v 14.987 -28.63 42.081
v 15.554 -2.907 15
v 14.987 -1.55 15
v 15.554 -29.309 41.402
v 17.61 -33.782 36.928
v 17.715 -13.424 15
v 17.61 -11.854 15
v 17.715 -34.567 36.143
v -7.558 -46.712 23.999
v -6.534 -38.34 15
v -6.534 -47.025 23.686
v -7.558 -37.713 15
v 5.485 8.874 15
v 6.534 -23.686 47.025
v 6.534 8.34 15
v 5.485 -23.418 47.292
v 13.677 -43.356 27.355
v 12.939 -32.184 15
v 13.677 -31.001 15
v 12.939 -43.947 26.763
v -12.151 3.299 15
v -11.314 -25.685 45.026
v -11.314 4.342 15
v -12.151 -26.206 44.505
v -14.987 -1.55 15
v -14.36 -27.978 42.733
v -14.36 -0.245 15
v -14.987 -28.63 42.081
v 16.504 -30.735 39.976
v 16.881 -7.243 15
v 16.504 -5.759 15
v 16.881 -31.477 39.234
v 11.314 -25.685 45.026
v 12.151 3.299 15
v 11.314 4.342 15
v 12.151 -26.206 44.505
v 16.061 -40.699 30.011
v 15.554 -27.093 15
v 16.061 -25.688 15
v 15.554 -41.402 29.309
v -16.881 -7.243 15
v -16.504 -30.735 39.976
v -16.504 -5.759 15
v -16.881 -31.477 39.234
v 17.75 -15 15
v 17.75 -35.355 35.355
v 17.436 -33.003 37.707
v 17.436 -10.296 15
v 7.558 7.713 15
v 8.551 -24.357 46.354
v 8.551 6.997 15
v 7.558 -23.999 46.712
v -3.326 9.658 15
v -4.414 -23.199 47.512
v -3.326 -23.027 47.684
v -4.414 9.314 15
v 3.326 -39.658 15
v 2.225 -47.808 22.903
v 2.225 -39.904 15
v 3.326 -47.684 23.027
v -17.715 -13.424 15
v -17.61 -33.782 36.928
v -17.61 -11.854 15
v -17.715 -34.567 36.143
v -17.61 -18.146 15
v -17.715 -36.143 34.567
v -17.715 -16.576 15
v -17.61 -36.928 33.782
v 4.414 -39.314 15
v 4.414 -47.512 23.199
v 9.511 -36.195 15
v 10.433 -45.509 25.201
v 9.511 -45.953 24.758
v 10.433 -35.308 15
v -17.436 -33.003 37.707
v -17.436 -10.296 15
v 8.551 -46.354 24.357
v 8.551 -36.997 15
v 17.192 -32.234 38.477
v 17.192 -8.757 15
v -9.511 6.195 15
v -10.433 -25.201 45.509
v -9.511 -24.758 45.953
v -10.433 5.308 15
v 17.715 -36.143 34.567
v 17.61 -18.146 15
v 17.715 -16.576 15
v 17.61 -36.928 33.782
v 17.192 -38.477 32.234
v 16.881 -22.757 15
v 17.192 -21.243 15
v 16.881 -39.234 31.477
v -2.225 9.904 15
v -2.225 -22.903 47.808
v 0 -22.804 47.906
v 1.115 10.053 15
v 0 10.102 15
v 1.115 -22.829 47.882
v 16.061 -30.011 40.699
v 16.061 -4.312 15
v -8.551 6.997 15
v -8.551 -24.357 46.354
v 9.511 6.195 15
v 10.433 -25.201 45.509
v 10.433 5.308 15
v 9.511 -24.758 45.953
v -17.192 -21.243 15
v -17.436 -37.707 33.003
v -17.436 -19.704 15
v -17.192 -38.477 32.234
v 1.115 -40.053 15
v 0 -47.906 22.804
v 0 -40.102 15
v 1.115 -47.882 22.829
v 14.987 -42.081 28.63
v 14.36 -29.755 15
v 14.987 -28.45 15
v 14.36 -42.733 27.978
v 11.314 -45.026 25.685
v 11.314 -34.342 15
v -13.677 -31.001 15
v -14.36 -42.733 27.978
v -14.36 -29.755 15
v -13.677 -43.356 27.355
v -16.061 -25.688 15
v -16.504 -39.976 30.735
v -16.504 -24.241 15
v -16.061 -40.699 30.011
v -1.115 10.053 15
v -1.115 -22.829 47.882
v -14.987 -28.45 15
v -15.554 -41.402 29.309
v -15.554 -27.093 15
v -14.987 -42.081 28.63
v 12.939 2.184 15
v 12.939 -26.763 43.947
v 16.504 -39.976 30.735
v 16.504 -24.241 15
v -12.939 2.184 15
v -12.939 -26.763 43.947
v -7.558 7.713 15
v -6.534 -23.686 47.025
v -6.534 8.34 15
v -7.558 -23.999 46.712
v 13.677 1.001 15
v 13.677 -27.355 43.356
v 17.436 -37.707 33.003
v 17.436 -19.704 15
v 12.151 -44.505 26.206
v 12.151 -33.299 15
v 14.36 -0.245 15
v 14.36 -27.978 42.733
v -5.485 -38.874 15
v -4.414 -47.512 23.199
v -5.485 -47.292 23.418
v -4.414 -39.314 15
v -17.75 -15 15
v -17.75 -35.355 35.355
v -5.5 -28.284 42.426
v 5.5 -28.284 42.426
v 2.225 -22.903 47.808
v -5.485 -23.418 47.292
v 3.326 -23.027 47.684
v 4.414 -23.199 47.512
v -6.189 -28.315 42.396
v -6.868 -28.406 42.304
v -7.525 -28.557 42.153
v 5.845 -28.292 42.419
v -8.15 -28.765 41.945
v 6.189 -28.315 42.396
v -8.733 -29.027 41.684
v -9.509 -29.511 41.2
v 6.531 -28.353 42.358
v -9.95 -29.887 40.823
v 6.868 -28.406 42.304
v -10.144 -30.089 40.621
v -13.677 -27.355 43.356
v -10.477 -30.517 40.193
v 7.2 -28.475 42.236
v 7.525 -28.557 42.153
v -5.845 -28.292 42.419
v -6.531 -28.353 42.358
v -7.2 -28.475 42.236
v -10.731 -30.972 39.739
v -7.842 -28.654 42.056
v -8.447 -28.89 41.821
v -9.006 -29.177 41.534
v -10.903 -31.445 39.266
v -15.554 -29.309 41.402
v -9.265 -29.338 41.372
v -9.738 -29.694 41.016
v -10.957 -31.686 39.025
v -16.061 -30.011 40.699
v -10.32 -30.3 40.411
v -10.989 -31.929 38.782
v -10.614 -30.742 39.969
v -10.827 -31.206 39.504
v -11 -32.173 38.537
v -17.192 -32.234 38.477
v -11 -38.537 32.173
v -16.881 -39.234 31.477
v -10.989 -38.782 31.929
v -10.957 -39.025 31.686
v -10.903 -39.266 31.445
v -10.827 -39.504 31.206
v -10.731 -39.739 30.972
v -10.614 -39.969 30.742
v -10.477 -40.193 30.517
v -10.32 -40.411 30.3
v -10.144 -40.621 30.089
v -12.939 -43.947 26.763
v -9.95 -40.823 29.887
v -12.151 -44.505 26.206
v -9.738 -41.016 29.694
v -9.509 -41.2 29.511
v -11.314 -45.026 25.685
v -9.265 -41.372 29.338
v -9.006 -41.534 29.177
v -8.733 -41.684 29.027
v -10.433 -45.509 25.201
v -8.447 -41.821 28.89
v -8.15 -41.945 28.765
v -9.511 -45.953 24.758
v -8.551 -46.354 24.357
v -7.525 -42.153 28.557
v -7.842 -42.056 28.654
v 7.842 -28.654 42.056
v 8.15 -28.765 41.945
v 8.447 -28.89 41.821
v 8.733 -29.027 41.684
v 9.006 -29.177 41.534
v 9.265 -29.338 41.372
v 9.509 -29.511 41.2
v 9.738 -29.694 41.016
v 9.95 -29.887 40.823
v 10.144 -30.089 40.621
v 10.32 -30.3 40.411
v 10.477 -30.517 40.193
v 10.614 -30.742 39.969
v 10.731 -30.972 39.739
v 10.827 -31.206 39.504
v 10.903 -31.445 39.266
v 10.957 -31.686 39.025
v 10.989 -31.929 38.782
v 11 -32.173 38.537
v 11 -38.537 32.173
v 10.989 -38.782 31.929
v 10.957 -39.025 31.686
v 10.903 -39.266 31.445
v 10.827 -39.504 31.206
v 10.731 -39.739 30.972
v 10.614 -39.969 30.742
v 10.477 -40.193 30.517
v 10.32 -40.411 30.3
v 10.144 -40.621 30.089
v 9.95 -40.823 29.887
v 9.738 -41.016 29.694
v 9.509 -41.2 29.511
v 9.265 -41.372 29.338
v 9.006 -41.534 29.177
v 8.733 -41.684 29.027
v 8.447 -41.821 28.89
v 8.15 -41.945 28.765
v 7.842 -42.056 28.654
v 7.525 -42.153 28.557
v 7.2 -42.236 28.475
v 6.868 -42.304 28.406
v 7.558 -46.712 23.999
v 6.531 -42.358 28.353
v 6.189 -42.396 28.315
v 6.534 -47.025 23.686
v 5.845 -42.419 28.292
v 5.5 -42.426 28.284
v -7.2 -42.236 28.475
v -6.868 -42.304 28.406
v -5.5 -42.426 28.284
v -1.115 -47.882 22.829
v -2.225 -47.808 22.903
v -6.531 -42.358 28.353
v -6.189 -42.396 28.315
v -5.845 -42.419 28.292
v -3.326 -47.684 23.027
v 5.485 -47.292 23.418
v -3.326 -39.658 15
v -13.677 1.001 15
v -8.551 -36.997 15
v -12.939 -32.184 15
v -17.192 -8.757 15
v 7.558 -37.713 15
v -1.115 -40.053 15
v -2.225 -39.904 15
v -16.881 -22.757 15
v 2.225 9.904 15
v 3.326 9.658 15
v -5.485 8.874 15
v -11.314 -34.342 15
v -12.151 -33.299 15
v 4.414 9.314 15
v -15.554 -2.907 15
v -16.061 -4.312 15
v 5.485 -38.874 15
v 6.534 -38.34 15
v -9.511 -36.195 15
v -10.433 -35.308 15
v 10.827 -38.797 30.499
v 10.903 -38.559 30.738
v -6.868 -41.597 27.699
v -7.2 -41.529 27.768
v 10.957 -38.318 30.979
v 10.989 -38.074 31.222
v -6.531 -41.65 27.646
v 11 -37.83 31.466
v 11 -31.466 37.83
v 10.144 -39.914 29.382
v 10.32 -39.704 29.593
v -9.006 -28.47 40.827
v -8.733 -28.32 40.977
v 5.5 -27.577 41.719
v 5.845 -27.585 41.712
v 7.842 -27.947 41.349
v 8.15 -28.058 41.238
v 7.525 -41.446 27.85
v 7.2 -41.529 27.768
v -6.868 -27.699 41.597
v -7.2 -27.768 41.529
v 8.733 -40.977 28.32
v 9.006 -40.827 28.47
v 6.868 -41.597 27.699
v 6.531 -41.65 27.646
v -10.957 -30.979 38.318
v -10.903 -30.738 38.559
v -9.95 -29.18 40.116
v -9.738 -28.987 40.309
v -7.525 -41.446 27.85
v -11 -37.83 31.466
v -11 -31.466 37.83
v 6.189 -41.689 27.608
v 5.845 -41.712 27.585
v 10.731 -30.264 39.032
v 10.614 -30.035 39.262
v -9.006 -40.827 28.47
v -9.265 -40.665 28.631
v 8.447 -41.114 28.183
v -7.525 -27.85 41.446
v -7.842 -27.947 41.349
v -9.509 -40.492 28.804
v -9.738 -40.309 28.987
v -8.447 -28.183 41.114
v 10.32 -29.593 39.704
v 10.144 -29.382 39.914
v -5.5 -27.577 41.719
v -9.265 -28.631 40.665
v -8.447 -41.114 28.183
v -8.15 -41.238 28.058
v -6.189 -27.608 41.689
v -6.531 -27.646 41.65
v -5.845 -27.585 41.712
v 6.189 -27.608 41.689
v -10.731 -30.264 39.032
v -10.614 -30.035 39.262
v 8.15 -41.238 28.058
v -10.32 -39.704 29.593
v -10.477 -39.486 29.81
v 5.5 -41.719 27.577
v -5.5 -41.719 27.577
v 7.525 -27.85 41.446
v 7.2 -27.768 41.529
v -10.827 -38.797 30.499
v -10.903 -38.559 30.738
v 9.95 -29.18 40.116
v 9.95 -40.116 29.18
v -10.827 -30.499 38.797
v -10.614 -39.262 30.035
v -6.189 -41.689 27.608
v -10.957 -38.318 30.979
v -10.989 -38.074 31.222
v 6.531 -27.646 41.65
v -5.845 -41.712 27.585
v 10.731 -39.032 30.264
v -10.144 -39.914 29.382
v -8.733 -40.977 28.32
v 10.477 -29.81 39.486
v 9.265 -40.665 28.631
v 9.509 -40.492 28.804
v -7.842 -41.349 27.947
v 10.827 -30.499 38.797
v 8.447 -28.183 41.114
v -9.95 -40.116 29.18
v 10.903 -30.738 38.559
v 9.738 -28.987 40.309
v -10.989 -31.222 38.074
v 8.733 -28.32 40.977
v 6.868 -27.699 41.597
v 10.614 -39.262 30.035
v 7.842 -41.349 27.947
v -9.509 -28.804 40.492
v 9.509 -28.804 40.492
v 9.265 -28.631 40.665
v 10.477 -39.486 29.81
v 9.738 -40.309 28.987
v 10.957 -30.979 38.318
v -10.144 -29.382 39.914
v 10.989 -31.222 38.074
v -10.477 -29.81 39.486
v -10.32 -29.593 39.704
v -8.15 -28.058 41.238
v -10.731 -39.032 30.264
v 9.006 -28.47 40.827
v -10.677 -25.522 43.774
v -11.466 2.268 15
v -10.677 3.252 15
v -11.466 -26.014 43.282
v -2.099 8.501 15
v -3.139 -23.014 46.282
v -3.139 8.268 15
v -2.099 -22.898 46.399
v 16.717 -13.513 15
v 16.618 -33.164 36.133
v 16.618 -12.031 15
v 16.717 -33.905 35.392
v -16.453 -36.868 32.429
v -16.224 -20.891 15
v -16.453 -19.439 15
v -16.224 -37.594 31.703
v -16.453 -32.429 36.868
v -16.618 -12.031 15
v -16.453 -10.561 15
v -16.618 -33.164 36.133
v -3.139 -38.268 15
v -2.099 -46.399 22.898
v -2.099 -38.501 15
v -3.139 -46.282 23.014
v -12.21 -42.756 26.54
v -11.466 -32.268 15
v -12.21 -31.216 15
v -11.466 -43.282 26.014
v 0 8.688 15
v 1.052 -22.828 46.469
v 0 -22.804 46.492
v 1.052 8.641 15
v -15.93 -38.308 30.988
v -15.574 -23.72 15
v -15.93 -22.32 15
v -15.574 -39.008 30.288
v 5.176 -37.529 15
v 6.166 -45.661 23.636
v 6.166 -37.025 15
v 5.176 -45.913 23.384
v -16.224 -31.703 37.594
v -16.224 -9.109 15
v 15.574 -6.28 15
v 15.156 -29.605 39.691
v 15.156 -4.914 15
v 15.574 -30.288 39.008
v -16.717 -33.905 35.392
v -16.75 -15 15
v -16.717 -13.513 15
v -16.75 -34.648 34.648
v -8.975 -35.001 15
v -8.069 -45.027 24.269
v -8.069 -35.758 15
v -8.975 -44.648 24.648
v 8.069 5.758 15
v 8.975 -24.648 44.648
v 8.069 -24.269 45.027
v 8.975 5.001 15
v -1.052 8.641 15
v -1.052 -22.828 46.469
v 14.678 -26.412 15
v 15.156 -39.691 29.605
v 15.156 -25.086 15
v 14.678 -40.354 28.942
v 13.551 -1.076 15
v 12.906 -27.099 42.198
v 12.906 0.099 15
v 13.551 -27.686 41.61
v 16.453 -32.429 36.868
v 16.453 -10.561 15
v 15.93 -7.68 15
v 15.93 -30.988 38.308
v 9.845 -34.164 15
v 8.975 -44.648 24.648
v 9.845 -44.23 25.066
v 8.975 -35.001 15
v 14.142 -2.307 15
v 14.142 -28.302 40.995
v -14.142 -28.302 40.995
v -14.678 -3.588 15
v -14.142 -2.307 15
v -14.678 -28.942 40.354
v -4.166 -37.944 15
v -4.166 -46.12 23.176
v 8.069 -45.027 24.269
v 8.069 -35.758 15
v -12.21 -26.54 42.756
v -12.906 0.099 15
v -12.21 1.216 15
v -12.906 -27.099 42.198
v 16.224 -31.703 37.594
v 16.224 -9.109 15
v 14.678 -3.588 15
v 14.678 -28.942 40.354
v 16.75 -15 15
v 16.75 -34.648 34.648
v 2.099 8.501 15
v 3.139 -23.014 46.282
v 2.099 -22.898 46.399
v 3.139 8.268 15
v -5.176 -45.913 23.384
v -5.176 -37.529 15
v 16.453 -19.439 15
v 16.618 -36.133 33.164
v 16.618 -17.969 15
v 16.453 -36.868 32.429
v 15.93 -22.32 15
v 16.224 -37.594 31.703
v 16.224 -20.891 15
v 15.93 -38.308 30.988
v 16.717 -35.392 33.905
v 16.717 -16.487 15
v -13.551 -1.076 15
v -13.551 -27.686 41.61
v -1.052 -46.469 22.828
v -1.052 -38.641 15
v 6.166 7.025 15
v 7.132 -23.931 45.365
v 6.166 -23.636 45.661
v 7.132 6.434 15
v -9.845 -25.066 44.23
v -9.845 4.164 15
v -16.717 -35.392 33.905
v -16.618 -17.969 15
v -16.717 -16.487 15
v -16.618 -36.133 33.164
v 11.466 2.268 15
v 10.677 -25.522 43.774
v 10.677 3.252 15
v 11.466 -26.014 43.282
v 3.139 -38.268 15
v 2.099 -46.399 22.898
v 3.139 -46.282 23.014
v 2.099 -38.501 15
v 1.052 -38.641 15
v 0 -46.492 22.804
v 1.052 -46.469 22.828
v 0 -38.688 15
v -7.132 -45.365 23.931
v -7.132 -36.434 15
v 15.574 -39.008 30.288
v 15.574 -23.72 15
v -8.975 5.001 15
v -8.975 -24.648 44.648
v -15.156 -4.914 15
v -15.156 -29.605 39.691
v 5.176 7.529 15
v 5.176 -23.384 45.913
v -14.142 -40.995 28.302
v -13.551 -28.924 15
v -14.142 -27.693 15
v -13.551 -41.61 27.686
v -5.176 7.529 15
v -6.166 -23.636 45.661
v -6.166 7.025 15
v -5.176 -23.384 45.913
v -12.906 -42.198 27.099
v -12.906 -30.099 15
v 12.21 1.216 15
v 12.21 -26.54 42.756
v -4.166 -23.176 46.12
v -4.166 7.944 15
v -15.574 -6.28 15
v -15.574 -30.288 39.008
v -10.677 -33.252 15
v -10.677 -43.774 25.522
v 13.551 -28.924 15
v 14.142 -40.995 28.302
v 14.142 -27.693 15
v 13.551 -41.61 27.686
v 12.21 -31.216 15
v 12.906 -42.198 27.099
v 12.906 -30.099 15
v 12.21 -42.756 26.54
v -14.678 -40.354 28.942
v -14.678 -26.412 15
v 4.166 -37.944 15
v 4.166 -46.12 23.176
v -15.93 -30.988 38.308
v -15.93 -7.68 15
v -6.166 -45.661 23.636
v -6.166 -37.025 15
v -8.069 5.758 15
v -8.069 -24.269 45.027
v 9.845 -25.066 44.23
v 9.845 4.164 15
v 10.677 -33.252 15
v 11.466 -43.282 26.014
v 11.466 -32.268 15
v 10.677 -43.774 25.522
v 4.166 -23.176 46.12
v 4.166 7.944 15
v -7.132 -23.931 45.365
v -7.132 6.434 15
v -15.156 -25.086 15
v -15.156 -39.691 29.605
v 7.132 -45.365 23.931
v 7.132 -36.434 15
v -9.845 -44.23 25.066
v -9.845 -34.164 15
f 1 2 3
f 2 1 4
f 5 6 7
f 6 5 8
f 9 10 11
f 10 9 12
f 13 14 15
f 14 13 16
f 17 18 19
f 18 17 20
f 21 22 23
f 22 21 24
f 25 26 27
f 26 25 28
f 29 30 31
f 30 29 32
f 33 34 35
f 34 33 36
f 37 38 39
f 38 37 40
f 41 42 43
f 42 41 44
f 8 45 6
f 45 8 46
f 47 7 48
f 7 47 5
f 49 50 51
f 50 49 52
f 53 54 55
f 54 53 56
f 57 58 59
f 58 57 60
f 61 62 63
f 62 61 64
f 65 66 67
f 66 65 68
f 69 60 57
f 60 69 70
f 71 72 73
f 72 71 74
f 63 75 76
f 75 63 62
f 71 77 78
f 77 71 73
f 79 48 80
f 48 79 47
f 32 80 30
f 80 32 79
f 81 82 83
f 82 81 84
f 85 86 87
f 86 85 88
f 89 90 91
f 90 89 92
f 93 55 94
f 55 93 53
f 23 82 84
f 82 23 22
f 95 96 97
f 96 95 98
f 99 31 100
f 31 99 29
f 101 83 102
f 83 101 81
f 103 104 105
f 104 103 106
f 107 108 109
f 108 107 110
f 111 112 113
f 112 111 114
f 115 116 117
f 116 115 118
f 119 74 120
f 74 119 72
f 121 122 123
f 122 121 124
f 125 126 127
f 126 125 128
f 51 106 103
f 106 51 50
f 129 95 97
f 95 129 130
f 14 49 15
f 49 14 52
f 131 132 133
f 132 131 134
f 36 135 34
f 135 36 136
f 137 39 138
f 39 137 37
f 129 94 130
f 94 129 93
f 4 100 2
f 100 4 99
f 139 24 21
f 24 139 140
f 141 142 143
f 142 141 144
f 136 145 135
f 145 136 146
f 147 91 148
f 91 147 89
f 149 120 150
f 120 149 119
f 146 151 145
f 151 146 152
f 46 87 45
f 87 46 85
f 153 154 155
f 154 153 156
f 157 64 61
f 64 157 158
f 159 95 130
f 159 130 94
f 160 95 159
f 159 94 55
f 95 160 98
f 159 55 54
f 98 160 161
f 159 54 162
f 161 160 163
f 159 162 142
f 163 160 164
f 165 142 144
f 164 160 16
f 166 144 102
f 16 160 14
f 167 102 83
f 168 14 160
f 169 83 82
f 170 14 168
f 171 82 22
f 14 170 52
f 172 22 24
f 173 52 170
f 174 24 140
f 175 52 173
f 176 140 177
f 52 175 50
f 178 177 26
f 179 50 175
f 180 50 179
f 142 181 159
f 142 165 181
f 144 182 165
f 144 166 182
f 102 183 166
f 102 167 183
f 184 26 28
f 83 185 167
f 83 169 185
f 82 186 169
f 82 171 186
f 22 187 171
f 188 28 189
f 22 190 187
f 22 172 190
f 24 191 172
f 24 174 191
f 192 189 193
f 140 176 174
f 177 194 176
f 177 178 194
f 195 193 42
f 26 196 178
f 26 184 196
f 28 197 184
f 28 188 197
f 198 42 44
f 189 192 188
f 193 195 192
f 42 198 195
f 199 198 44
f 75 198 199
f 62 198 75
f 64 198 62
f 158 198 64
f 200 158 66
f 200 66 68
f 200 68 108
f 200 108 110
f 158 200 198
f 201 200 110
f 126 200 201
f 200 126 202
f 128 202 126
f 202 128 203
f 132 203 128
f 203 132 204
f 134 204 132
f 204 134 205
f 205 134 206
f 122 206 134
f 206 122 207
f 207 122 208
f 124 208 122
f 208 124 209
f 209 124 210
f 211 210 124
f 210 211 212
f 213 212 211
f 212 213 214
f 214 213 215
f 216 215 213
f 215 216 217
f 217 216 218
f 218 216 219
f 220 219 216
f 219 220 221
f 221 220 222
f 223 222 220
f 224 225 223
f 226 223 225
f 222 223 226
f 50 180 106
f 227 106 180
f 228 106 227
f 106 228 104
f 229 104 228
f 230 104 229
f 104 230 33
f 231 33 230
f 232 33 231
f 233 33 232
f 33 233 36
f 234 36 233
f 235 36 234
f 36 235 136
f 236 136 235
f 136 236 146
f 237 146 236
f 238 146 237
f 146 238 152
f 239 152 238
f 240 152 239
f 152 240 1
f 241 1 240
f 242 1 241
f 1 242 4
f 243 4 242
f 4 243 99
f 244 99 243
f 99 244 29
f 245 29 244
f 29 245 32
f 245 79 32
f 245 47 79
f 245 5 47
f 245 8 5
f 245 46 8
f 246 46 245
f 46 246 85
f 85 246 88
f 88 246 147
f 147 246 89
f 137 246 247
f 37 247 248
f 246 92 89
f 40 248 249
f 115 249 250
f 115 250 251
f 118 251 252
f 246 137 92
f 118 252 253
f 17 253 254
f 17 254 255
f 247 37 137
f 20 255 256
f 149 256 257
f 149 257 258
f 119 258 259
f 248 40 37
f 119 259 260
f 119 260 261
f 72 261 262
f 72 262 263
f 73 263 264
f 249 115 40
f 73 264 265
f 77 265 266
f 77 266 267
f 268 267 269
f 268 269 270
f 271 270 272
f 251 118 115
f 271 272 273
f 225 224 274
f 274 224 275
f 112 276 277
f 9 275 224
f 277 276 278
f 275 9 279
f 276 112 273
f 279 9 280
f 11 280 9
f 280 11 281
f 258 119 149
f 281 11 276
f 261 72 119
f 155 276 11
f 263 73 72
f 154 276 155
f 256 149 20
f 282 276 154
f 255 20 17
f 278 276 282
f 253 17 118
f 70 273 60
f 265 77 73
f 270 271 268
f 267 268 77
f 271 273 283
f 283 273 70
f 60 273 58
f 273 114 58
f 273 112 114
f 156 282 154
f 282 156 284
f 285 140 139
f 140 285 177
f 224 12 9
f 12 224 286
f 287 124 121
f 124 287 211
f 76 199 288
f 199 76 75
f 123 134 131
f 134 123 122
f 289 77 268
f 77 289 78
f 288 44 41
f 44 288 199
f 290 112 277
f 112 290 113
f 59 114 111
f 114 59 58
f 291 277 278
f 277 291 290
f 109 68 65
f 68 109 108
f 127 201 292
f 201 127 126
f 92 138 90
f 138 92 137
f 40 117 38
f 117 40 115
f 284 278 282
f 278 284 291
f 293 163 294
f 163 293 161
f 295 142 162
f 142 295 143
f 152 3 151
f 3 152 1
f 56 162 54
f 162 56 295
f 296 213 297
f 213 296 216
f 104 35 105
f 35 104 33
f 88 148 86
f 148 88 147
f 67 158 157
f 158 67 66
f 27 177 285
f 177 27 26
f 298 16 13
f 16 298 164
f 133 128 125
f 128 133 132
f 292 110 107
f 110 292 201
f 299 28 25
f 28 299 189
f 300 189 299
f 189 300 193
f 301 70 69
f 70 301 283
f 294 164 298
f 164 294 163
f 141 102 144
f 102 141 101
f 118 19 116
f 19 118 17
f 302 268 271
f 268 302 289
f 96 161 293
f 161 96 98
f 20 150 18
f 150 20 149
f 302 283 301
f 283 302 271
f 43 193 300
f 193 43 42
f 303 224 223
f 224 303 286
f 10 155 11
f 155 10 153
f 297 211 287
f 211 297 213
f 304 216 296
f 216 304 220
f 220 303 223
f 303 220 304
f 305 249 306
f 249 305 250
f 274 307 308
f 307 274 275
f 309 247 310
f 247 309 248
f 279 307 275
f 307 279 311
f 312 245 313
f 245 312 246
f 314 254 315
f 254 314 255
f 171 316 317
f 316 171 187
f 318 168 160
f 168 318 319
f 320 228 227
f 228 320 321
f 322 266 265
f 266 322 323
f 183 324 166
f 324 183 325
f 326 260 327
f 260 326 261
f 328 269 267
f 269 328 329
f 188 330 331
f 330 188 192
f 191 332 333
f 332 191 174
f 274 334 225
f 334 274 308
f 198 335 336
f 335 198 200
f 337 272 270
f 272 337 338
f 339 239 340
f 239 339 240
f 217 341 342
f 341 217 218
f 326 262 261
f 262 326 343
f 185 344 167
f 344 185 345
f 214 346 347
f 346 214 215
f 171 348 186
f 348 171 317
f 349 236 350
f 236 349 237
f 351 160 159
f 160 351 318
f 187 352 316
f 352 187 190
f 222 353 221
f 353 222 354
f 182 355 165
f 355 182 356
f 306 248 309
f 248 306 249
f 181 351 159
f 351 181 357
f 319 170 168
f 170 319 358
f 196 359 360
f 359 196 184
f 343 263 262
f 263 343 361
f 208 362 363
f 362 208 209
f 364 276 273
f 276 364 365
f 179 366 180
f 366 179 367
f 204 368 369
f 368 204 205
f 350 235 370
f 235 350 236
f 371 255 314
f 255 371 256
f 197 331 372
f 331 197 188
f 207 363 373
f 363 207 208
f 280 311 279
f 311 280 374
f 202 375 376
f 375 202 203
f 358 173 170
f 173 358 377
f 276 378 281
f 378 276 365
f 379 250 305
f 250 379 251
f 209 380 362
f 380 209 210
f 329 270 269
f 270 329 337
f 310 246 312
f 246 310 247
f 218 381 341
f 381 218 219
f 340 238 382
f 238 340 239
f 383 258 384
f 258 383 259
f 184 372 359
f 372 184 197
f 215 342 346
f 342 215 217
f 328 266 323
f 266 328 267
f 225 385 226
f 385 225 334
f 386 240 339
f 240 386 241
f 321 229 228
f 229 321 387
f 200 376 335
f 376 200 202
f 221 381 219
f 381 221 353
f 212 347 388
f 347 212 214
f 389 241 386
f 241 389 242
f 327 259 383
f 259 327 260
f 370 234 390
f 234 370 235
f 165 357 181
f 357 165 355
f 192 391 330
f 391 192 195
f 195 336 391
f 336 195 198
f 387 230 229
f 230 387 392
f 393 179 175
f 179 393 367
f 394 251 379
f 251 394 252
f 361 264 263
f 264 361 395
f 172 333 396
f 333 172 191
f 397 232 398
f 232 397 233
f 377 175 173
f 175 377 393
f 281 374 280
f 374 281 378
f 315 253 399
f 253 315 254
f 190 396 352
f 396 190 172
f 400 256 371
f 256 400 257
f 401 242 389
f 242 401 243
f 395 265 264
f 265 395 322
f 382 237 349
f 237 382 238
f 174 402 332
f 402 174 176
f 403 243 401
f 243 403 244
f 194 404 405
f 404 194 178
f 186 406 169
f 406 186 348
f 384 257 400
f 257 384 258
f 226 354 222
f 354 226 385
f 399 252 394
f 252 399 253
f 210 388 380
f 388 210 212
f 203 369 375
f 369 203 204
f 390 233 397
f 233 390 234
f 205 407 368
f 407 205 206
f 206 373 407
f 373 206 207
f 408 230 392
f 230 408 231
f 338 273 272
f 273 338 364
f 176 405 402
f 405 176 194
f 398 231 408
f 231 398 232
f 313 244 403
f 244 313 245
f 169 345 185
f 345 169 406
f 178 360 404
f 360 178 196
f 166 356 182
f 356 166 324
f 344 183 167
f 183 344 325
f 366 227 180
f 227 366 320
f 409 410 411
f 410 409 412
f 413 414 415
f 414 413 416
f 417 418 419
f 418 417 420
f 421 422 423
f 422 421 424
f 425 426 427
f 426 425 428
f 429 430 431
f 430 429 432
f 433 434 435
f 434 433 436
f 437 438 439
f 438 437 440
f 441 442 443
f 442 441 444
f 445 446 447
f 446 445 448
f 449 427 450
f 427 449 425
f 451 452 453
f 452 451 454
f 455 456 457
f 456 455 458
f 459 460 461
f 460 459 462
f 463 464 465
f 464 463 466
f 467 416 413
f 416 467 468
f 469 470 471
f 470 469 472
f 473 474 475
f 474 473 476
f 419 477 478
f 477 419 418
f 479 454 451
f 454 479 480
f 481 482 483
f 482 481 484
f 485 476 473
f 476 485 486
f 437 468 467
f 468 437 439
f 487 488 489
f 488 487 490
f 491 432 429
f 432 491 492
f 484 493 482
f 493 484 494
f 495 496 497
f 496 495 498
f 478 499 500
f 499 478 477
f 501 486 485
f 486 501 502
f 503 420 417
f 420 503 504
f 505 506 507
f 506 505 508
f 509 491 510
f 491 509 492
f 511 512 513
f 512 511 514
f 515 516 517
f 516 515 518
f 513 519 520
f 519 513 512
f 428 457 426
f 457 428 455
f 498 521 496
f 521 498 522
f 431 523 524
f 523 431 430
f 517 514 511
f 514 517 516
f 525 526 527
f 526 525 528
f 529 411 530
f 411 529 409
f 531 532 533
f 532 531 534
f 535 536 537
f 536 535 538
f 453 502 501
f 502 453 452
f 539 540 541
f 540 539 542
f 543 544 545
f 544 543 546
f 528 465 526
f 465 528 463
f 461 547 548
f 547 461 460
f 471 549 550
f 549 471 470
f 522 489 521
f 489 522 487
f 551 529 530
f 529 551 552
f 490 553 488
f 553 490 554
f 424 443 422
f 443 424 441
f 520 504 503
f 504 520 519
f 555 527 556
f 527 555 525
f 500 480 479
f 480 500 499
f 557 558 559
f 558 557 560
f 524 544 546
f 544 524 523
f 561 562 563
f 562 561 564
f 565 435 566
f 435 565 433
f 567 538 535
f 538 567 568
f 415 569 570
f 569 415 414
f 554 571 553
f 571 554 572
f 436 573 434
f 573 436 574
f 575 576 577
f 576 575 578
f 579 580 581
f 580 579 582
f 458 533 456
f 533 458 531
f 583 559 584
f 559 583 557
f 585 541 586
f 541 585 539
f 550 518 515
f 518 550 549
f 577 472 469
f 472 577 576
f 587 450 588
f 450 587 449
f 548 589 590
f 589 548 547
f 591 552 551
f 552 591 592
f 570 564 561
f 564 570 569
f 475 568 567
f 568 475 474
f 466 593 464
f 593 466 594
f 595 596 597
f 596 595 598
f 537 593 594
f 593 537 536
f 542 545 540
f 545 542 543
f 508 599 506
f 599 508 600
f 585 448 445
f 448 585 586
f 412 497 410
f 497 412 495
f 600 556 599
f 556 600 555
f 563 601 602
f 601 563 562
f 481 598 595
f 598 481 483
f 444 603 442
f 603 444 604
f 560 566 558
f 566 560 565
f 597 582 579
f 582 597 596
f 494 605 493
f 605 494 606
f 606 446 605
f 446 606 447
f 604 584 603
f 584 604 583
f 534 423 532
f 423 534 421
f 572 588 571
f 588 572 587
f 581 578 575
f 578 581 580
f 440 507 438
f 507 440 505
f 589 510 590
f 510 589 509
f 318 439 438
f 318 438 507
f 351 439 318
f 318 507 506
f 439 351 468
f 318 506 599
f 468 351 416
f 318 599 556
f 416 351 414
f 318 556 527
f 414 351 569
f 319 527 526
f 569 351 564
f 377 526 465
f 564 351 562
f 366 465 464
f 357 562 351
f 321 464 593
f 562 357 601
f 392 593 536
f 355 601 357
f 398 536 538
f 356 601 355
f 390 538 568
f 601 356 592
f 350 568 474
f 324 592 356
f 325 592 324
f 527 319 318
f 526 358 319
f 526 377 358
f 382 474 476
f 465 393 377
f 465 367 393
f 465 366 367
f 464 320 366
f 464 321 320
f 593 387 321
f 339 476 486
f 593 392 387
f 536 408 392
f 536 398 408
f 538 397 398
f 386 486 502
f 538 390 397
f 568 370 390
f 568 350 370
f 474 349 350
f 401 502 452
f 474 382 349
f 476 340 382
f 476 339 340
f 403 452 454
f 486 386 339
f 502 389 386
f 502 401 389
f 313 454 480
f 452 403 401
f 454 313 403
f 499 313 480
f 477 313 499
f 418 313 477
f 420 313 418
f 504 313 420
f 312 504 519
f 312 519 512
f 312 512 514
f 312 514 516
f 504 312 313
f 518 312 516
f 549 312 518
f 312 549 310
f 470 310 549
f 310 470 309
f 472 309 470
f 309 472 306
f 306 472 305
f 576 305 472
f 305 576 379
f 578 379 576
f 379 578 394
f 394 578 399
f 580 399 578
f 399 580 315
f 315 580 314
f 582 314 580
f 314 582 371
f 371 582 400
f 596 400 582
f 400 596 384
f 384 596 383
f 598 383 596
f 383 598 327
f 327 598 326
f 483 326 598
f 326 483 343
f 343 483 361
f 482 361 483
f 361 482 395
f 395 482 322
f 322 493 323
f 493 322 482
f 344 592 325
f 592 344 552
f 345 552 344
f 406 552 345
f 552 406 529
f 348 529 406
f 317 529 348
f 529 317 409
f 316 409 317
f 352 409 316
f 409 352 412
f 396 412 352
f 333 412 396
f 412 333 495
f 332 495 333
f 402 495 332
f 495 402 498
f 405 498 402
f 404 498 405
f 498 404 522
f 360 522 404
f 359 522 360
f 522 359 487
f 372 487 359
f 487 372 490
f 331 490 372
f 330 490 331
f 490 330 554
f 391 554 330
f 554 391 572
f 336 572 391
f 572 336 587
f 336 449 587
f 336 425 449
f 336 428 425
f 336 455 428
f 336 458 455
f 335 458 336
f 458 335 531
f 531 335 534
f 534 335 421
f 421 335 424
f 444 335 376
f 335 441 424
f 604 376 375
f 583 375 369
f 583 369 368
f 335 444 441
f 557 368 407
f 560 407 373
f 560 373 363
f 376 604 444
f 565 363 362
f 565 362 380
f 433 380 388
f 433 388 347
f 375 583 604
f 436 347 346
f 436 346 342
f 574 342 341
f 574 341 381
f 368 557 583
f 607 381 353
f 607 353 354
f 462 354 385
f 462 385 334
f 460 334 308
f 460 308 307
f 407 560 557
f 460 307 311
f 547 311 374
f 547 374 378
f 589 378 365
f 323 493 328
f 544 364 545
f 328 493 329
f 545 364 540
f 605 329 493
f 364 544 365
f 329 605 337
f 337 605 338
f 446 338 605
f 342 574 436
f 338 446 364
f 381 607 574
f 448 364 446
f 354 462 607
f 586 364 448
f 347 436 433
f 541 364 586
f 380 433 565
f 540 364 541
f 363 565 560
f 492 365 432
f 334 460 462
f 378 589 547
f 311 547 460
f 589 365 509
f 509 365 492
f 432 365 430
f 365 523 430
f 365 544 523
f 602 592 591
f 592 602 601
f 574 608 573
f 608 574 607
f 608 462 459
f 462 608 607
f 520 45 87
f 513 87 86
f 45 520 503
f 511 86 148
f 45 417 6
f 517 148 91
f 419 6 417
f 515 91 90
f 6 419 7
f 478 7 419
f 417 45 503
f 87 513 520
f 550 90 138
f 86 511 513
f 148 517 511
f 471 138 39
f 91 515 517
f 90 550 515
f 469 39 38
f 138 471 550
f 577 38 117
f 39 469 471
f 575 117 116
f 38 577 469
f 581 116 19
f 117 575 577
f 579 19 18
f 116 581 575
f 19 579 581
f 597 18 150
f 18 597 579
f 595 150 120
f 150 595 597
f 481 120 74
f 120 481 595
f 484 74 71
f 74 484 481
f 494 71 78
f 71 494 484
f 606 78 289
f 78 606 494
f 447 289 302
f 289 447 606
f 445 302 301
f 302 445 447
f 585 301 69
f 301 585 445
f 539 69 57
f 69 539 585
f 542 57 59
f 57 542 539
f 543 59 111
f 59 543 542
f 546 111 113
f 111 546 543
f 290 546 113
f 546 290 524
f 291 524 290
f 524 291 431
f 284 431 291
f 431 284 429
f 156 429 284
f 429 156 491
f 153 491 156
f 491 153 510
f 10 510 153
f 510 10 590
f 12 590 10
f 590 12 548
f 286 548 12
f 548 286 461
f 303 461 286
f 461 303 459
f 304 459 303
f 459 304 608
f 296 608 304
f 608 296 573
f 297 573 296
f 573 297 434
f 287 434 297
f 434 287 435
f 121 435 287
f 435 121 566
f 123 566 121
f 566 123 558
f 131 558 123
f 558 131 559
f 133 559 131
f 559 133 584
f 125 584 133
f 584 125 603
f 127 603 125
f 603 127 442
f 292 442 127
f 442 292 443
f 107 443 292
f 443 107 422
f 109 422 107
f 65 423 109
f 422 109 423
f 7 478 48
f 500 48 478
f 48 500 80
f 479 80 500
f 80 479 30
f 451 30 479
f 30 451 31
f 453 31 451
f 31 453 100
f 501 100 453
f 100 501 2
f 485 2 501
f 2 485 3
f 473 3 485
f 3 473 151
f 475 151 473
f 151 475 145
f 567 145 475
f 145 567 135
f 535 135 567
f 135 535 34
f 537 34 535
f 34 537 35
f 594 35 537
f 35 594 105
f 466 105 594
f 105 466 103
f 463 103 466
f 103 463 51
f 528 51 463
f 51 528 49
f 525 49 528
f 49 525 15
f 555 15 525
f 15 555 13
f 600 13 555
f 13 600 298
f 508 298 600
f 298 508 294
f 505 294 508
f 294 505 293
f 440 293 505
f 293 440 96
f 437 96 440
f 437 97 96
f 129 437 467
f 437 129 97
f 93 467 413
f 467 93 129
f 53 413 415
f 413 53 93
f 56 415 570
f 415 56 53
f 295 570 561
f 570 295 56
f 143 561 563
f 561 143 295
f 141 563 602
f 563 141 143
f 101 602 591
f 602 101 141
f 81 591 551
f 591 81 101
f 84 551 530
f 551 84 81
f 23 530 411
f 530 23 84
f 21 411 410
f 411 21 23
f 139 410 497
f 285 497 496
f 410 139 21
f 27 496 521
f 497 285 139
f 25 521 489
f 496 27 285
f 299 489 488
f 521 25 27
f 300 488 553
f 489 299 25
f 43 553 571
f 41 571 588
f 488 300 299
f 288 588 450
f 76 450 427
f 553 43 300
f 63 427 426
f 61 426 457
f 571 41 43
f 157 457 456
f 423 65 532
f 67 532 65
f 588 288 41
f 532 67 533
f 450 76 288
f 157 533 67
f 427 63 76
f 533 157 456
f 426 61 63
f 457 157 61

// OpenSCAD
//
// ktCLOCK2
//
 
gap1 = 0.001;
gap2 = 0.002;
th = 2;




R1 = 33+0.5;
RR = 11;




difference()
{
    rotate([45, 0, 0]) union()
    {
        cover();
        //base();
    }
    translate([-100/2, -100/2, -100+15]) cube([100, 100, 100]);
}





module cover()
{
difference()
{
    union()
    {
        translate([0, 0, 0]) cylinder(r=(R1+2)/2, h=50, $fn=100);
    }
    
    translate([-(22-RR)/2, -(20-RR)/2, 0+gap1])
    minkowski()
    {
        cube([22-RR, 20-RR, 50-1]);
        cylinder(r=RR/2, h=1, $fn=100);
    }
        
        
    //translate([-22/2, -14/2, 0+gap1]) cube([22, 14, 10]);
    //translate([-15.5/2, -20/2, 0+gap1]) cube([15.5, 20, 10]);
    translate([0, 0, -1]) cylinder(r=R1/2, h=50, $fn=100);
   
}
}

module base()
{
difference()
{
    union()
    {
        translate([0, 0, 0]) cylinder(r=(R1-0.5)/2, h=50-8.5, $fn=100);
    }
}
}





/*R = 10;
R2 = 7;
R3 = 7.5;
T = 10;



cover();
translate([0, 100, 0])
top();
translate([0, 200, 0])
base();

module cover()
{
difference()
{
    union()
    {
        translate([-(87.5+th*2-R)/2, -(40-R)/2, 0])
        minkowski()
        {
            cube([87.5+th*2-R, 40-R, 16.5+th+10-1]);
            cylinder(r=R/2, h=1, $fn=100);
        }
    }
   
    translate([-(29)/2, (34-1.5)/2-gap1, -gap1]) cube([29, 1.5, 12]);
    translate([-(87.5)/2, -(34+1.5)/2, -gap1]) cube([87.5, 34, 16.5]);
    hull()
    {
        translate([-(87.5)/2+(87.5-60)/2, -(34+1.5)/2+8.5, 16.5-gap2]) cube([60, 19, 1]);
        translate([-(87.5+th*2-R2-th*2)/2, -(40-R2-th*2)/2, 16.5+th+10-1+1+gap1])
        minkowski()
        {
            cube([87.5+th*2-R2-th*2, 40-R2-th*2, 0.1]);
            cylinder(r=R2/2, h=1, $fn=100);
        }
    }
    translate([-(19)/2, -(34)/2-5-gap1, -gap1]) cube([19, 5.5, 2]);

   
}
}


module top()
{
difference()
{
    union()
    {
        hull()
        {
        translate([-(38)/2, -(20)/2+7, 20]) cube([38, 20, 0.1]);
        translate([0, 0, 0]) cylinder(r=(R3+1)/2, h=0.1, $fn=100);
        }
    }
    translate([0, -R3/2, 0]) rotate([-T, 0, 0]) translate([0, R3/2, 0]) cylinder(r=R3/2, h=30, $fn=100);
}
translate([-(15)/2, -(15)/2+7, 20+0.1+-2]) cube([15, 15, 2]);
}


module base()
{
difference()
{
    union()
    {
        translate([0, 0, -6]) rotate([-T, 0, 0]) cylinder(r1=70/2, r2=0/2, h=30, $fn=100);
    }
    translate([0, 0, -6]) rotate([-T, 0, 0]) cylinder(r=R3/2, h=30, $fn=100);
    
    translate([-(100)/2, -(100)/2, -100]) cube([200, 200, 100]);
}
translate([-10/2, -10/2, 0]) cube([10, 10, 2]);
}
*/
